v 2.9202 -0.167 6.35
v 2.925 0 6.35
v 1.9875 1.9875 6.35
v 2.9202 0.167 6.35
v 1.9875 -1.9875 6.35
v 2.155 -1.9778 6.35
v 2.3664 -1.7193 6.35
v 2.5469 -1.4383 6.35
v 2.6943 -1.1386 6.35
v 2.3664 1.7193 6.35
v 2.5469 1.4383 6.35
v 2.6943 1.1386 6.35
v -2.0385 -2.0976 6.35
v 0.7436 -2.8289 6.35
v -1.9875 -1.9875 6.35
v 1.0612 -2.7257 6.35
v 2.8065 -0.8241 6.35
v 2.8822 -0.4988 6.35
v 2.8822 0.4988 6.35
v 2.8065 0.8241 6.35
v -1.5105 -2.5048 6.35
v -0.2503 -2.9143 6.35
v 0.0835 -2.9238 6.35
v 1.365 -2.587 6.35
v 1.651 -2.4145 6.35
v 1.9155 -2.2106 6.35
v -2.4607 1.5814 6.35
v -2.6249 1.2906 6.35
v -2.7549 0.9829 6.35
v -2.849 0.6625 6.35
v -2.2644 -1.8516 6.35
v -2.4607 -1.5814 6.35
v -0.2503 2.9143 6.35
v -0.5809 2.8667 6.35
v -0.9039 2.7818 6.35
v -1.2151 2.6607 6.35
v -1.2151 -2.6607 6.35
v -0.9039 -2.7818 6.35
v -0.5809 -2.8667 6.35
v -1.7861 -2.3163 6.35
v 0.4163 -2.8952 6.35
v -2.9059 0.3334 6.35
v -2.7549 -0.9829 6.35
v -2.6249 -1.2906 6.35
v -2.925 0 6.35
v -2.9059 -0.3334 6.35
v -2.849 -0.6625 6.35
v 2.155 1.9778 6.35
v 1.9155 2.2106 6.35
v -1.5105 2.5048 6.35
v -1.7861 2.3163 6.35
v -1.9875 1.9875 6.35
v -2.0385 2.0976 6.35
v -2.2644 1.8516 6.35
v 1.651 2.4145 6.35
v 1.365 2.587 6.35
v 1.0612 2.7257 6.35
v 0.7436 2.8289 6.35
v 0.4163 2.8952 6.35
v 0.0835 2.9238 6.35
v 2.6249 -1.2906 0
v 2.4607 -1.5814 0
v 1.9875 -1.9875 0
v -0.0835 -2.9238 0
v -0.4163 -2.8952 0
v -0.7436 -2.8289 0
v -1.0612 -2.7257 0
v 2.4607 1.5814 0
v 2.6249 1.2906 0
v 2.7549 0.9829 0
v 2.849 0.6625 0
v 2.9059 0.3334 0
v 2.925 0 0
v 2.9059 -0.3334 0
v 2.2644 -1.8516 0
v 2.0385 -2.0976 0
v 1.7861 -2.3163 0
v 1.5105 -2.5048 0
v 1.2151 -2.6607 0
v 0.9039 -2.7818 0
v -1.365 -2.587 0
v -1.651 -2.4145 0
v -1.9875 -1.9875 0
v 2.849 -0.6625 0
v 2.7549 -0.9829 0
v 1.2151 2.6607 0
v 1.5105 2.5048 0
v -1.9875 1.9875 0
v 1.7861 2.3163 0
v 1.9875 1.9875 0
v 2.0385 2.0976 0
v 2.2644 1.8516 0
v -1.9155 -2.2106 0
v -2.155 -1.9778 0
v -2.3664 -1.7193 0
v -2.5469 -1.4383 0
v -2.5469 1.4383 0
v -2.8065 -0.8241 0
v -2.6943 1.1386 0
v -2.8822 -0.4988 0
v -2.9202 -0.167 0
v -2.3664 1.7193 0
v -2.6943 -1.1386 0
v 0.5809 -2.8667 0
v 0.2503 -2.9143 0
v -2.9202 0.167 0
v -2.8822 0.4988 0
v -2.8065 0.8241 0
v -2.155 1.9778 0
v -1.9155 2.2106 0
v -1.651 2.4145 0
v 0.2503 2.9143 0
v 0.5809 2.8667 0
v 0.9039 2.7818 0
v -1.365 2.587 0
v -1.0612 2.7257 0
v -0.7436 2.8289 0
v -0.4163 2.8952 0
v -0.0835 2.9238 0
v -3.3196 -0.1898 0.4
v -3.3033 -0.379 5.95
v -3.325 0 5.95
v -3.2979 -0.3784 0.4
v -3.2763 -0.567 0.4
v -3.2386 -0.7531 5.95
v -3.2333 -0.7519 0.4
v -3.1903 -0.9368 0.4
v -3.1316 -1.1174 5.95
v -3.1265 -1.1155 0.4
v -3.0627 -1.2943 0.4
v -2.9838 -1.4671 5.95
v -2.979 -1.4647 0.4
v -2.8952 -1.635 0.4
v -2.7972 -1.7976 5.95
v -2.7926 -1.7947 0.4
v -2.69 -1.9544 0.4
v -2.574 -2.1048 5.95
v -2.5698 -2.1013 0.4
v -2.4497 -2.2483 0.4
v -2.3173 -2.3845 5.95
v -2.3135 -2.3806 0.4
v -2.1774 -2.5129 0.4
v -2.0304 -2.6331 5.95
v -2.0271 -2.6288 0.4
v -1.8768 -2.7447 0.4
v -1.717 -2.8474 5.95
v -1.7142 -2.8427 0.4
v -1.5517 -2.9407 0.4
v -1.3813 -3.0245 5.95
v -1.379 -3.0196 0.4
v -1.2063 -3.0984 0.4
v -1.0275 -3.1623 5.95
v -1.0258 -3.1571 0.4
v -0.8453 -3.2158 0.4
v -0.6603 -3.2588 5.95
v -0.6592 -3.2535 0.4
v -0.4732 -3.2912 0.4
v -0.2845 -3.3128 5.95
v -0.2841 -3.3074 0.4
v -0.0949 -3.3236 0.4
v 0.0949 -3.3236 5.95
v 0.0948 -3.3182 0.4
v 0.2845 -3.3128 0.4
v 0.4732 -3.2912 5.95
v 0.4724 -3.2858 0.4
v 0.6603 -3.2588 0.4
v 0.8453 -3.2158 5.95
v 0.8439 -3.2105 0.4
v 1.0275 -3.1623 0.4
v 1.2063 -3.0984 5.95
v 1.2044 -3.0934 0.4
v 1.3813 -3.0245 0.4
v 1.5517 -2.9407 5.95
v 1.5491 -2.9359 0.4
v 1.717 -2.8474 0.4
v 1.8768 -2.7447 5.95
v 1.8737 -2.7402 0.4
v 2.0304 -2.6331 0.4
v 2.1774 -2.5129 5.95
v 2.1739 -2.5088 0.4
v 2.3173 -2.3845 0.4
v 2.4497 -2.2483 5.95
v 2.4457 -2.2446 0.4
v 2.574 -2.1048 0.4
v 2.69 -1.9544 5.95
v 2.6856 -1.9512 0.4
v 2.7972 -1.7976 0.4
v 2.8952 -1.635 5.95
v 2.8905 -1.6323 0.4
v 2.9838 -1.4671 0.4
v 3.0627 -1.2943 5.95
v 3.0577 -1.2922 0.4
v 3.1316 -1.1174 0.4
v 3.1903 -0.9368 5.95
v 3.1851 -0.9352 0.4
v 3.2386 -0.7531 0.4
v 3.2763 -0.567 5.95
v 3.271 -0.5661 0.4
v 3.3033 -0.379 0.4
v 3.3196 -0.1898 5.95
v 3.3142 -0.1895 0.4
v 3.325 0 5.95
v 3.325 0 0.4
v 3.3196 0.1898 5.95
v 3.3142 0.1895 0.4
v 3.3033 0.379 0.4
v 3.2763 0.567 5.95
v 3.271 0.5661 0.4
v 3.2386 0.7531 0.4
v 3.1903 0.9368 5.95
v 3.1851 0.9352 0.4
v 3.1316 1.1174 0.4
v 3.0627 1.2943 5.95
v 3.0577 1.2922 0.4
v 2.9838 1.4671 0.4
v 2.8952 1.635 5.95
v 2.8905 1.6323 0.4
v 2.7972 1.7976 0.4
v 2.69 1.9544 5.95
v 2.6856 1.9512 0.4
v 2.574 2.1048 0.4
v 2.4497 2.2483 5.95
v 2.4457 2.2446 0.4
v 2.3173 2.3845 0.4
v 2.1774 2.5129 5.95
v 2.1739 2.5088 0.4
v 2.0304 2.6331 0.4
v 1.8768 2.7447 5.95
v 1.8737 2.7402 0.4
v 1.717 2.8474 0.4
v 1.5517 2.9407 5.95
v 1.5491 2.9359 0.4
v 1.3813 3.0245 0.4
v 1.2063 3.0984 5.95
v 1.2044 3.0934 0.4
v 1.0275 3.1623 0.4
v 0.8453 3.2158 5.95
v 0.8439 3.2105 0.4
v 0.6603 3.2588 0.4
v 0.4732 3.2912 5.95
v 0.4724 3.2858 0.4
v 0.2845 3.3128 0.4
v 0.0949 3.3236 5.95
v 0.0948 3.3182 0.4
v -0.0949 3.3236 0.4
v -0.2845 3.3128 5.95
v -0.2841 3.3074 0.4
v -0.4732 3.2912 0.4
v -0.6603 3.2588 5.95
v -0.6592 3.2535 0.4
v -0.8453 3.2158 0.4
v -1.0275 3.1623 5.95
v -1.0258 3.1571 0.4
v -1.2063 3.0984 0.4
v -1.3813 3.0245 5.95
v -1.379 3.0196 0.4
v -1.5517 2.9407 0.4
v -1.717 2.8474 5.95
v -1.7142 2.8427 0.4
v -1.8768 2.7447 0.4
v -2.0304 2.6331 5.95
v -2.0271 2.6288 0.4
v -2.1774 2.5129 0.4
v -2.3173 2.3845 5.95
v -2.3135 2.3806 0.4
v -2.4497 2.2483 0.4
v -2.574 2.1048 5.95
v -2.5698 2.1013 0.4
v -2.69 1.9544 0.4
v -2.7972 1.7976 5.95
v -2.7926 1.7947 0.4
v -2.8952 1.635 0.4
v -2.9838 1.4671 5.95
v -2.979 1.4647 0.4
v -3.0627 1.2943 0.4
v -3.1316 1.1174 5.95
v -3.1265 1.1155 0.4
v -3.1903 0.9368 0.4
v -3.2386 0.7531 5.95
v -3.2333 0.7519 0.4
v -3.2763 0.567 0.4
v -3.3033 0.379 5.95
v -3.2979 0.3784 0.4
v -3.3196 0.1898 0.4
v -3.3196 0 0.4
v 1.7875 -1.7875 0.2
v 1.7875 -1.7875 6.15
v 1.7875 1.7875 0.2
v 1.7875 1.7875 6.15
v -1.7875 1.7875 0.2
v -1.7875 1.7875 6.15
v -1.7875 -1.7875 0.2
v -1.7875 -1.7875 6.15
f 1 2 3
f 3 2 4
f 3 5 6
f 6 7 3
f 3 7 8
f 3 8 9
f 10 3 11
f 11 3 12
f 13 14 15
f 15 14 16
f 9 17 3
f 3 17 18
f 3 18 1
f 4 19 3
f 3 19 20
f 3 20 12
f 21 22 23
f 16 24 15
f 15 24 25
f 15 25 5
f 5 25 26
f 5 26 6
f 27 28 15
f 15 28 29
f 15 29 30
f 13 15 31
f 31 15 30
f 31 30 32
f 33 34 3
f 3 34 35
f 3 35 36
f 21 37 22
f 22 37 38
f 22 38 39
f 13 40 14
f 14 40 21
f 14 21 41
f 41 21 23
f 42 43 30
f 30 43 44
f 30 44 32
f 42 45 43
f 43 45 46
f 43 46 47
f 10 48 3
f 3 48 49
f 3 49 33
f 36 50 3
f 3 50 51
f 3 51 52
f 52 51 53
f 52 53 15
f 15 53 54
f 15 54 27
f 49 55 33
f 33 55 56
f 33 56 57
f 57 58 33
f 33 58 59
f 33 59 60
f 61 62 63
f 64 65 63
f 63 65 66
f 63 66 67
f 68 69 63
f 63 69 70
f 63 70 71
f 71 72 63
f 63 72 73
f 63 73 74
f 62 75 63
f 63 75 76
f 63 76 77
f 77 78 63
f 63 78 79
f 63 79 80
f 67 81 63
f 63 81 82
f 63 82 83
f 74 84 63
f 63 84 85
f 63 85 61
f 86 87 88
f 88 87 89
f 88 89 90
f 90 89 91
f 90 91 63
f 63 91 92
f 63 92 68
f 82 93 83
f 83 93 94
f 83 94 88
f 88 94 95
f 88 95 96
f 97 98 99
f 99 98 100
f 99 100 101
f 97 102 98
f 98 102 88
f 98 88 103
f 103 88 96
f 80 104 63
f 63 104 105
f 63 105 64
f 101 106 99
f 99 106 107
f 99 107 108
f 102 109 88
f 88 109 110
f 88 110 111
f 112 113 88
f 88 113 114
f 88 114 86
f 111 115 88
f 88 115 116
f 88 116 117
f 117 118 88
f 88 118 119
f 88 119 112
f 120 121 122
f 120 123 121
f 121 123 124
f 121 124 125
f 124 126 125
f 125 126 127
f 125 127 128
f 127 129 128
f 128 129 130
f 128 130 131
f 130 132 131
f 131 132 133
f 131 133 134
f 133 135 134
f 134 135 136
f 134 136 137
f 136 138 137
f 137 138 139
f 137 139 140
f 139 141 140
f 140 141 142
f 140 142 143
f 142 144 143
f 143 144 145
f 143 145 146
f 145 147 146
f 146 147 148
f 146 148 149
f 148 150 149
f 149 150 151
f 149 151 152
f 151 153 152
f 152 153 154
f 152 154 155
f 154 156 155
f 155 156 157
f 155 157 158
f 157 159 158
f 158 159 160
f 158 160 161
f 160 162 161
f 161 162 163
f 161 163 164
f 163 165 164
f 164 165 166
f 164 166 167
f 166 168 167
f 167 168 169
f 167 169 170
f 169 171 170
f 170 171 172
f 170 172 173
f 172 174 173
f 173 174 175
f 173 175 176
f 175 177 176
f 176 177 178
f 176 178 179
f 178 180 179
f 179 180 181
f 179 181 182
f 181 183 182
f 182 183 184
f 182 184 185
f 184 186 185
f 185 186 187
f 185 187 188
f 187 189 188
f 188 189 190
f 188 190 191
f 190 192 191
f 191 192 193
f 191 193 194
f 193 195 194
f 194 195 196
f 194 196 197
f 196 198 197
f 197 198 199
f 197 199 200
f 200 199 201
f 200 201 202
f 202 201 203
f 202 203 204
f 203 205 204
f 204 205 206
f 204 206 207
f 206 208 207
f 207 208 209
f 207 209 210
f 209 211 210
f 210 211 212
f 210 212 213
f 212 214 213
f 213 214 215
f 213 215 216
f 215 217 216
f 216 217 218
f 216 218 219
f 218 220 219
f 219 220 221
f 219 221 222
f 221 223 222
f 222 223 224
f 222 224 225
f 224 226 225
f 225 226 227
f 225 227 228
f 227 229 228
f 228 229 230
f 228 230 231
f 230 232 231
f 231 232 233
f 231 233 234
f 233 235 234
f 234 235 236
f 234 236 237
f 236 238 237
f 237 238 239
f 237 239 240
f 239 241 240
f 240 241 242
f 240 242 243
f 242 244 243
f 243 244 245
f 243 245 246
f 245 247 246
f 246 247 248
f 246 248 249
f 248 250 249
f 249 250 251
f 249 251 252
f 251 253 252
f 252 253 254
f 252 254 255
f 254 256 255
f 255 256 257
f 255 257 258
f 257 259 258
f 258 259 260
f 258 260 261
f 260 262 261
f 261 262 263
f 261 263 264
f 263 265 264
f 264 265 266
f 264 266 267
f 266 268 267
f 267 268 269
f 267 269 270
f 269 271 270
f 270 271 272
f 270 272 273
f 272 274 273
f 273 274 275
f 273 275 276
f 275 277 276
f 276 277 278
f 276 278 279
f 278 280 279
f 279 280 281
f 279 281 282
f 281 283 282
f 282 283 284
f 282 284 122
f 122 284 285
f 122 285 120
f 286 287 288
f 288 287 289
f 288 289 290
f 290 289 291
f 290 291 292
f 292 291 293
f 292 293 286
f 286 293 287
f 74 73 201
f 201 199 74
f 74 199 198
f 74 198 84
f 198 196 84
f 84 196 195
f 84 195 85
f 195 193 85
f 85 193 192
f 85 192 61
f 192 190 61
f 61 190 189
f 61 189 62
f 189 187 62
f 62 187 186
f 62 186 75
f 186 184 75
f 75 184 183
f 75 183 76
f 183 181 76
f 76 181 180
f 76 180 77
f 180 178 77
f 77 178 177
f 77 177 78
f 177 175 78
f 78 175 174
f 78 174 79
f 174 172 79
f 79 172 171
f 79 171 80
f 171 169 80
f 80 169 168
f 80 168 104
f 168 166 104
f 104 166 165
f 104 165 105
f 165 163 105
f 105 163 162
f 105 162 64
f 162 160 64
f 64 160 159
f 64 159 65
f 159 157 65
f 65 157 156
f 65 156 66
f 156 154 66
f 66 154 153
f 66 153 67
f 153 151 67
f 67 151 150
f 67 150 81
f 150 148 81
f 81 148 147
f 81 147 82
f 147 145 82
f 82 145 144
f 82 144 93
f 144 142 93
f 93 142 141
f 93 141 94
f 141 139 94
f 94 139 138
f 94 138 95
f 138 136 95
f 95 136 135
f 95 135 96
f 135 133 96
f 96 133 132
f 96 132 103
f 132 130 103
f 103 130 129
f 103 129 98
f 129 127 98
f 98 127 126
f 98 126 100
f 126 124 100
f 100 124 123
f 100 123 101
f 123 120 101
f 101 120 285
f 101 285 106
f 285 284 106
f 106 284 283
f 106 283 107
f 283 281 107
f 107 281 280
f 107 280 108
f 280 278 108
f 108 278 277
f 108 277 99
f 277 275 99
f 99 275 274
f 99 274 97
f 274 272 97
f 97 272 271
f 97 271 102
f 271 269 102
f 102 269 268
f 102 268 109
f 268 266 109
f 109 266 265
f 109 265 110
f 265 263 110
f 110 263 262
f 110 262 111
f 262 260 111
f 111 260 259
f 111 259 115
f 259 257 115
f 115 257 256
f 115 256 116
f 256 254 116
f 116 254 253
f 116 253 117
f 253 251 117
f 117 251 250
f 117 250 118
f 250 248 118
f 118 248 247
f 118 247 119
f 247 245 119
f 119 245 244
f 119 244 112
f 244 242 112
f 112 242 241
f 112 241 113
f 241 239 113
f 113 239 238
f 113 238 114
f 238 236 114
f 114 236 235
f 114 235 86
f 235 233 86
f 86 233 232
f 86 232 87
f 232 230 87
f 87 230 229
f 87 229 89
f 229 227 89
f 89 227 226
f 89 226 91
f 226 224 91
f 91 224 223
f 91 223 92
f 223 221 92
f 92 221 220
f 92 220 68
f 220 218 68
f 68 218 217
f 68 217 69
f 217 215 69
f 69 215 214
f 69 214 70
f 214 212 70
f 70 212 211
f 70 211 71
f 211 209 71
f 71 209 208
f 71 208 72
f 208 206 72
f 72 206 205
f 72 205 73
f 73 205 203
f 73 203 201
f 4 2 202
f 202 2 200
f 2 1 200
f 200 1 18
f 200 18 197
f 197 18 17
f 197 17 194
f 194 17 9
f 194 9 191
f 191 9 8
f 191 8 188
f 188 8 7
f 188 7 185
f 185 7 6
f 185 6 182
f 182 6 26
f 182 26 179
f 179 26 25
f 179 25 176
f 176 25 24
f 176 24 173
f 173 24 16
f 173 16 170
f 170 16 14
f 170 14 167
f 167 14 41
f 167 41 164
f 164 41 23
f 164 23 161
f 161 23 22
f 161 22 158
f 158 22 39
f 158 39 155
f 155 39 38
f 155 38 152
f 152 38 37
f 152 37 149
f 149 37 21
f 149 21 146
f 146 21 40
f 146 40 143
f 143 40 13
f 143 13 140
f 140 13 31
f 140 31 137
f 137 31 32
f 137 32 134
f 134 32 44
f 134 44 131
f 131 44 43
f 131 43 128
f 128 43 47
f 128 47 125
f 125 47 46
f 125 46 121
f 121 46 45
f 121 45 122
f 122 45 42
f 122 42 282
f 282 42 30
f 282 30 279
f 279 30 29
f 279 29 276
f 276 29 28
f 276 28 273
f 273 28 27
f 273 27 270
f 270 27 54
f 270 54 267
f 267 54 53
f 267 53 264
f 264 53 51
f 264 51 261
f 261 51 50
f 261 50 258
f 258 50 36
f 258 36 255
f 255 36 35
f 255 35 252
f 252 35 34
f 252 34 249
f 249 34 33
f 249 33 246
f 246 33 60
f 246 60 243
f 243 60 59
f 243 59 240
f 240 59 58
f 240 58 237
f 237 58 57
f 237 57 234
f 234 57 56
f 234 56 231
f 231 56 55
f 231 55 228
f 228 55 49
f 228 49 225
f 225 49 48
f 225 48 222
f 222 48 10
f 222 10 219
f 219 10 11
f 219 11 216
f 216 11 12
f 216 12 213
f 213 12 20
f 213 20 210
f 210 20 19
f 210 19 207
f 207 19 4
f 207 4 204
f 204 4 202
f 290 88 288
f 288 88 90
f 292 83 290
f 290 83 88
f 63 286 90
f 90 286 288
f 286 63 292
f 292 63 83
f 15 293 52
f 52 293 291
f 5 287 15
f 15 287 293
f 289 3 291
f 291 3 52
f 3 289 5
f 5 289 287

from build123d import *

# Parameters (mm, degrees)
SKETCH1_R           = 3.325
SKETCH1_W           = 3.575
SKETCH1_H           = 3.575
BOSS_EXTRUDE1_DEPTH = 6.35
CHAMFER1_SIZE       = 0.4
CHAMFER2_SIZE       = 0.2


with BuildPart() as part:
    # Sketch1 → Boss-Extrude1 (new body)
    with BuildSketch(Plane.XY):
        Circle(SKETCH1_R)
        Rectangle(SKETCH1_W, SKETCH1_H, mode=Mode.SUBTRACT)
    extrude(amount=BOSS_EXTRUDE1_DEPTH)

    # Chamfer1
    chamfer1_edges = [part.edges().sort_by_distance(p)[0] for p in [
        (-3.325, 0, 0),
        (-3.325, 0, 6.35),
    ]]
    chamfer(chamfer1_edges, length=CHAMFER1_SIZE)

    # Chamfer2
    chamfer2_edges = [part.edges().sort_by_distance(p)[0] for p in [
        (0, -1.7875, 6.35),
        (1.7875, 0, 0),
        (0, 1.7875, 0),
        (-1.7875, 0, 0),
        (0, -1.7875, 0),
        (1.7875, 0, 6.35),
        (0, 1.7875, 6.35),
        (-1.7875, 0, 6.35),
    ]]
    chamfer(chamfer2_edges, length=CHAMFER2_SIZE)


solid = part.part
